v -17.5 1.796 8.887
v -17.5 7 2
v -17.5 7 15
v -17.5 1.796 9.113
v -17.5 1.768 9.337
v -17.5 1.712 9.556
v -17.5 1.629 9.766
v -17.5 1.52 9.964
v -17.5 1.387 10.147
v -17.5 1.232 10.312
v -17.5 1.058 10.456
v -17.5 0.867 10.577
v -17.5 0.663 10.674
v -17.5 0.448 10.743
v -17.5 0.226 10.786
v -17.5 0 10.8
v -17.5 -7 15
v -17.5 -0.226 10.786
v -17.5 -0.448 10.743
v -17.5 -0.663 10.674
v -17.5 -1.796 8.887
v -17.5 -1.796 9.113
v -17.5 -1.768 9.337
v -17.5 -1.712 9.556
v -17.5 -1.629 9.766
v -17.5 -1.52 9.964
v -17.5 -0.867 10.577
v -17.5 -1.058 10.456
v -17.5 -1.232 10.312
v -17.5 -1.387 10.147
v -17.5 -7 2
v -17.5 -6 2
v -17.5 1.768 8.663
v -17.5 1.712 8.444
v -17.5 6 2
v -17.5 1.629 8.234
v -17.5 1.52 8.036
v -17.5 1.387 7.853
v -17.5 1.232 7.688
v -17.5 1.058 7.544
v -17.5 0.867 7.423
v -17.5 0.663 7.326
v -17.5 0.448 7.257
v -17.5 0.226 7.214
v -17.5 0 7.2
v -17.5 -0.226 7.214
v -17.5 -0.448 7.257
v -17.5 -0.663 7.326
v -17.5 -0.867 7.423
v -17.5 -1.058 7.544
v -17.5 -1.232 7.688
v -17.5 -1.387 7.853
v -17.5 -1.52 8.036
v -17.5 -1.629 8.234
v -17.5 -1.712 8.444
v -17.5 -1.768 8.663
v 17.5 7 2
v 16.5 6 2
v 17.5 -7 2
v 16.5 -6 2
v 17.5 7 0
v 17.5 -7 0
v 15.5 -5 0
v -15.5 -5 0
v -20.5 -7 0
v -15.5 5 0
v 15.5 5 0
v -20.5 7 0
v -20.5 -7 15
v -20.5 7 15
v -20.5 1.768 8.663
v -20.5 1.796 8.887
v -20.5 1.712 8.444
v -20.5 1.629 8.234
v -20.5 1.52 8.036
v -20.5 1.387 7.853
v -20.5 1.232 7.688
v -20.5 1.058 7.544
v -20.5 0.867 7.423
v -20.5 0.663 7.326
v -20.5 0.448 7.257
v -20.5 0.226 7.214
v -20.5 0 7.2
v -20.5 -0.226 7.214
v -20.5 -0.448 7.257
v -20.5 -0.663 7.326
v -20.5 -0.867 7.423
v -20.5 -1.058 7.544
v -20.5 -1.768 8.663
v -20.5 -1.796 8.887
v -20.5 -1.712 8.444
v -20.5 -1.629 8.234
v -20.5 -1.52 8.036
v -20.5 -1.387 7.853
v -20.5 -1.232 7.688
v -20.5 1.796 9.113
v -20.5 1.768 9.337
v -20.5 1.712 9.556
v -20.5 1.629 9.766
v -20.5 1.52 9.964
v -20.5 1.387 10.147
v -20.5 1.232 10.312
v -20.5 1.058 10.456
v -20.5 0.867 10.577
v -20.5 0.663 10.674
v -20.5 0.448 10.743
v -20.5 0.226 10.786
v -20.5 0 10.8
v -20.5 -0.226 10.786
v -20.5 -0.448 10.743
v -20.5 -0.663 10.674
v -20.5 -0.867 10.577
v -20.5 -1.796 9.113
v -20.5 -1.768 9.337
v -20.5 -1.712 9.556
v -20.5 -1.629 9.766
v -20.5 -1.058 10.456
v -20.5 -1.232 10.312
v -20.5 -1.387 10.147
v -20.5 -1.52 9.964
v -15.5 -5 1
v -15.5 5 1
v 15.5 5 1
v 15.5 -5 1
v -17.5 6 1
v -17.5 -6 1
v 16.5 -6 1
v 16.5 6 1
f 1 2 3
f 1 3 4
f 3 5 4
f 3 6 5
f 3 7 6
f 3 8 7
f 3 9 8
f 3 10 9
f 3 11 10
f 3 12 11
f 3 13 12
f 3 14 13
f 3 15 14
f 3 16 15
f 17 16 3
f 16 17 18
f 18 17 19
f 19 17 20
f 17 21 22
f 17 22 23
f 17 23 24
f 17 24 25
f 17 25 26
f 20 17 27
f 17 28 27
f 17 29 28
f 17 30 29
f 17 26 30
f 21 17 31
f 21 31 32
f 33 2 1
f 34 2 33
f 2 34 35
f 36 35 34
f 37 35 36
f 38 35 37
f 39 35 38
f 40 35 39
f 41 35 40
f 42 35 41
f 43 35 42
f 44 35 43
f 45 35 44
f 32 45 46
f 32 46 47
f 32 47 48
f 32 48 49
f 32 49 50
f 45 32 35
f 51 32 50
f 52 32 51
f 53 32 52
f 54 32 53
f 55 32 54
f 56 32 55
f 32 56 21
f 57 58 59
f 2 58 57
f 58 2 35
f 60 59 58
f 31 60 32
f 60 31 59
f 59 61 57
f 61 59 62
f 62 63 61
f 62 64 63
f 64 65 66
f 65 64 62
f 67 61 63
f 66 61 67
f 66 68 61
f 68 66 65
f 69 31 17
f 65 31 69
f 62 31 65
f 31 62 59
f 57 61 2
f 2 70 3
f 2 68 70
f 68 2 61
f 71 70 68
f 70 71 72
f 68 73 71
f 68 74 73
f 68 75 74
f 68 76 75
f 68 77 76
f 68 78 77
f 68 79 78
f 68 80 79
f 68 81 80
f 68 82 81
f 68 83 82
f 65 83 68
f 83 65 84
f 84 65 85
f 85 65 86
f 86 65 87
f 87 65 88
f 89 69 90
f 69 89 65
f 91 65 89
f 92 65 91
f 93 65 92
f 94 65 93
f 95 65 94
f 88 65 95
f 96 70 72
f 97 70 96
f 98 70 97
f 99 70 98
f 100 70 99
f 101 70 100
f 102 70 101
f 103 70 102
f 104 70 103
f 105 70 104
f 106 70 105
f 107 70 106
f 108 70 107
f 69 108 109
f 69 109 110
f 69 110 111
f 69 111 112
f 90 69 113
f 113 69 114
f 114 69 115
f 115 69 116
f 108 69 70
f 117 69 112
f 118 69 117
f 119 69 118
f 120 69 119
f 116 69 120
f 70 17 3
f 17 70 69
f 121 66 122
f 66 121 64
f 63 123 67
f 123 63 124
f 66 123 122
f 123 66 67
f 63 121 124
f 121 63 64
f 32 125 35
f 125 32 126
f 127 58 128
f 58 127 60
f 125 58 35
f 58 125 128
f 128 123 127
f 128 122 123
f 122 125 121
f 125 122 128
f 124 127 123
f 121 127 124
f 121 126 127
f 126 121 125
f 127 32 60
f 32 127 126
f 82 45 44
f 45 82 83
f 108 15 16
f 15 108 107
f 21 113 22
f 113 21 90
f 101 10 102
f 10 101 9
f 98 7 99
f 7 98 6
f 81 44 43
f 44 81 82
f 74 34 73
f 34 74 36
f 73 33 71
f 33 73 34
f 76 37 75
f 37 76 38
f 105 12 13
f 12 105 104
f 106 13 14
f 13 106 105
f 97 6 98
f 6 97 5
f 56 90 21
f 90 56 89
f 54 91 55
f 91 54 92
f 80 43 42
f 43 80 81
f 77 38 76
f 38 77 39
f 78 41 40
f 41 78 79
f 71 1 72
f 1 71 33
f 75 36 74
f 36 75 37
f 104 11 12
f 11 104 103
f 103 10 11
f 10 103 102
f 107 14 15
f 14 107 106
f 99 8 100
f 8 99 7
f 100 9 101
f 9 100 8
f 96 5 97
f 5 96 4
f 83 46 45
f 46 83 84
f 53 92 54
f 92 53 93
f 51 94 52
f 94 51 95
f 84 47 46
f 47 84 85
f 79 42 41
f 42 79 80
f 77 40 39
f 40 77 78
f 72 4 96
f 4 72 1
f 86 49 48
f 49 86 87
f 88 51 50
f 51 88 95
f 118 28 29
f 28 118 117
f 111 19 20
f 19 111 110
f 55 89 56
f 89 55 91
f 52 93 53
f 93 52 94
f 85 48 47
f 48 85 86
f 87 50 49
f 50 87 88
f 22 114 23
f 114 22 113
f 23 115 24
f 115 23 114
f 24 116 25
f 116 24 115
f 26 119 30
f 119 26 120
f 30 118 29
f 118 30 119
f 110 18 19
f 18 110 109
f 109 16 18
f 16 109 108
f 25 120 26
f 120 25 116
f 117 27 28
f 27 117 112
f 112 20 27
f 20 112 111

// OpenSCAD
$fn = 50;


difference() {
	union() {
		translate(v = [-17.5000000000, -7.0000000000, 0]) {
			rotate(a = [0, 0, 0]) {
				cube(size = [35, 14, 2]);
			}
		}
		translate(v = [-20.5000000000, -7.0000000000, 0]) {
			rotate(a = [0, 0, 0]) {
				cube(size = [3, 14, 15]);
			}
		}
	}
	union() {
		translate(v = [-15.5000000000, -5.0000000000, 0]) {
			rotate(a = [0, 0, 0]) {
				cube(size = [31, 10, 2]);
			}
		}
		translate(v = [-17.5000000000, -6.0000000000, 1]) {
			rotate(a = [0, 0, 0]) {
				cube(size = [34, 12, 1]);
			}
		}
		#translate(v = [-27.5000000000, 0, 9]) {
			rotate(a = [0, 90, 0]) {
				cylinder(h = 20, r = 1.8000000000);
			}
		}
	}
}
